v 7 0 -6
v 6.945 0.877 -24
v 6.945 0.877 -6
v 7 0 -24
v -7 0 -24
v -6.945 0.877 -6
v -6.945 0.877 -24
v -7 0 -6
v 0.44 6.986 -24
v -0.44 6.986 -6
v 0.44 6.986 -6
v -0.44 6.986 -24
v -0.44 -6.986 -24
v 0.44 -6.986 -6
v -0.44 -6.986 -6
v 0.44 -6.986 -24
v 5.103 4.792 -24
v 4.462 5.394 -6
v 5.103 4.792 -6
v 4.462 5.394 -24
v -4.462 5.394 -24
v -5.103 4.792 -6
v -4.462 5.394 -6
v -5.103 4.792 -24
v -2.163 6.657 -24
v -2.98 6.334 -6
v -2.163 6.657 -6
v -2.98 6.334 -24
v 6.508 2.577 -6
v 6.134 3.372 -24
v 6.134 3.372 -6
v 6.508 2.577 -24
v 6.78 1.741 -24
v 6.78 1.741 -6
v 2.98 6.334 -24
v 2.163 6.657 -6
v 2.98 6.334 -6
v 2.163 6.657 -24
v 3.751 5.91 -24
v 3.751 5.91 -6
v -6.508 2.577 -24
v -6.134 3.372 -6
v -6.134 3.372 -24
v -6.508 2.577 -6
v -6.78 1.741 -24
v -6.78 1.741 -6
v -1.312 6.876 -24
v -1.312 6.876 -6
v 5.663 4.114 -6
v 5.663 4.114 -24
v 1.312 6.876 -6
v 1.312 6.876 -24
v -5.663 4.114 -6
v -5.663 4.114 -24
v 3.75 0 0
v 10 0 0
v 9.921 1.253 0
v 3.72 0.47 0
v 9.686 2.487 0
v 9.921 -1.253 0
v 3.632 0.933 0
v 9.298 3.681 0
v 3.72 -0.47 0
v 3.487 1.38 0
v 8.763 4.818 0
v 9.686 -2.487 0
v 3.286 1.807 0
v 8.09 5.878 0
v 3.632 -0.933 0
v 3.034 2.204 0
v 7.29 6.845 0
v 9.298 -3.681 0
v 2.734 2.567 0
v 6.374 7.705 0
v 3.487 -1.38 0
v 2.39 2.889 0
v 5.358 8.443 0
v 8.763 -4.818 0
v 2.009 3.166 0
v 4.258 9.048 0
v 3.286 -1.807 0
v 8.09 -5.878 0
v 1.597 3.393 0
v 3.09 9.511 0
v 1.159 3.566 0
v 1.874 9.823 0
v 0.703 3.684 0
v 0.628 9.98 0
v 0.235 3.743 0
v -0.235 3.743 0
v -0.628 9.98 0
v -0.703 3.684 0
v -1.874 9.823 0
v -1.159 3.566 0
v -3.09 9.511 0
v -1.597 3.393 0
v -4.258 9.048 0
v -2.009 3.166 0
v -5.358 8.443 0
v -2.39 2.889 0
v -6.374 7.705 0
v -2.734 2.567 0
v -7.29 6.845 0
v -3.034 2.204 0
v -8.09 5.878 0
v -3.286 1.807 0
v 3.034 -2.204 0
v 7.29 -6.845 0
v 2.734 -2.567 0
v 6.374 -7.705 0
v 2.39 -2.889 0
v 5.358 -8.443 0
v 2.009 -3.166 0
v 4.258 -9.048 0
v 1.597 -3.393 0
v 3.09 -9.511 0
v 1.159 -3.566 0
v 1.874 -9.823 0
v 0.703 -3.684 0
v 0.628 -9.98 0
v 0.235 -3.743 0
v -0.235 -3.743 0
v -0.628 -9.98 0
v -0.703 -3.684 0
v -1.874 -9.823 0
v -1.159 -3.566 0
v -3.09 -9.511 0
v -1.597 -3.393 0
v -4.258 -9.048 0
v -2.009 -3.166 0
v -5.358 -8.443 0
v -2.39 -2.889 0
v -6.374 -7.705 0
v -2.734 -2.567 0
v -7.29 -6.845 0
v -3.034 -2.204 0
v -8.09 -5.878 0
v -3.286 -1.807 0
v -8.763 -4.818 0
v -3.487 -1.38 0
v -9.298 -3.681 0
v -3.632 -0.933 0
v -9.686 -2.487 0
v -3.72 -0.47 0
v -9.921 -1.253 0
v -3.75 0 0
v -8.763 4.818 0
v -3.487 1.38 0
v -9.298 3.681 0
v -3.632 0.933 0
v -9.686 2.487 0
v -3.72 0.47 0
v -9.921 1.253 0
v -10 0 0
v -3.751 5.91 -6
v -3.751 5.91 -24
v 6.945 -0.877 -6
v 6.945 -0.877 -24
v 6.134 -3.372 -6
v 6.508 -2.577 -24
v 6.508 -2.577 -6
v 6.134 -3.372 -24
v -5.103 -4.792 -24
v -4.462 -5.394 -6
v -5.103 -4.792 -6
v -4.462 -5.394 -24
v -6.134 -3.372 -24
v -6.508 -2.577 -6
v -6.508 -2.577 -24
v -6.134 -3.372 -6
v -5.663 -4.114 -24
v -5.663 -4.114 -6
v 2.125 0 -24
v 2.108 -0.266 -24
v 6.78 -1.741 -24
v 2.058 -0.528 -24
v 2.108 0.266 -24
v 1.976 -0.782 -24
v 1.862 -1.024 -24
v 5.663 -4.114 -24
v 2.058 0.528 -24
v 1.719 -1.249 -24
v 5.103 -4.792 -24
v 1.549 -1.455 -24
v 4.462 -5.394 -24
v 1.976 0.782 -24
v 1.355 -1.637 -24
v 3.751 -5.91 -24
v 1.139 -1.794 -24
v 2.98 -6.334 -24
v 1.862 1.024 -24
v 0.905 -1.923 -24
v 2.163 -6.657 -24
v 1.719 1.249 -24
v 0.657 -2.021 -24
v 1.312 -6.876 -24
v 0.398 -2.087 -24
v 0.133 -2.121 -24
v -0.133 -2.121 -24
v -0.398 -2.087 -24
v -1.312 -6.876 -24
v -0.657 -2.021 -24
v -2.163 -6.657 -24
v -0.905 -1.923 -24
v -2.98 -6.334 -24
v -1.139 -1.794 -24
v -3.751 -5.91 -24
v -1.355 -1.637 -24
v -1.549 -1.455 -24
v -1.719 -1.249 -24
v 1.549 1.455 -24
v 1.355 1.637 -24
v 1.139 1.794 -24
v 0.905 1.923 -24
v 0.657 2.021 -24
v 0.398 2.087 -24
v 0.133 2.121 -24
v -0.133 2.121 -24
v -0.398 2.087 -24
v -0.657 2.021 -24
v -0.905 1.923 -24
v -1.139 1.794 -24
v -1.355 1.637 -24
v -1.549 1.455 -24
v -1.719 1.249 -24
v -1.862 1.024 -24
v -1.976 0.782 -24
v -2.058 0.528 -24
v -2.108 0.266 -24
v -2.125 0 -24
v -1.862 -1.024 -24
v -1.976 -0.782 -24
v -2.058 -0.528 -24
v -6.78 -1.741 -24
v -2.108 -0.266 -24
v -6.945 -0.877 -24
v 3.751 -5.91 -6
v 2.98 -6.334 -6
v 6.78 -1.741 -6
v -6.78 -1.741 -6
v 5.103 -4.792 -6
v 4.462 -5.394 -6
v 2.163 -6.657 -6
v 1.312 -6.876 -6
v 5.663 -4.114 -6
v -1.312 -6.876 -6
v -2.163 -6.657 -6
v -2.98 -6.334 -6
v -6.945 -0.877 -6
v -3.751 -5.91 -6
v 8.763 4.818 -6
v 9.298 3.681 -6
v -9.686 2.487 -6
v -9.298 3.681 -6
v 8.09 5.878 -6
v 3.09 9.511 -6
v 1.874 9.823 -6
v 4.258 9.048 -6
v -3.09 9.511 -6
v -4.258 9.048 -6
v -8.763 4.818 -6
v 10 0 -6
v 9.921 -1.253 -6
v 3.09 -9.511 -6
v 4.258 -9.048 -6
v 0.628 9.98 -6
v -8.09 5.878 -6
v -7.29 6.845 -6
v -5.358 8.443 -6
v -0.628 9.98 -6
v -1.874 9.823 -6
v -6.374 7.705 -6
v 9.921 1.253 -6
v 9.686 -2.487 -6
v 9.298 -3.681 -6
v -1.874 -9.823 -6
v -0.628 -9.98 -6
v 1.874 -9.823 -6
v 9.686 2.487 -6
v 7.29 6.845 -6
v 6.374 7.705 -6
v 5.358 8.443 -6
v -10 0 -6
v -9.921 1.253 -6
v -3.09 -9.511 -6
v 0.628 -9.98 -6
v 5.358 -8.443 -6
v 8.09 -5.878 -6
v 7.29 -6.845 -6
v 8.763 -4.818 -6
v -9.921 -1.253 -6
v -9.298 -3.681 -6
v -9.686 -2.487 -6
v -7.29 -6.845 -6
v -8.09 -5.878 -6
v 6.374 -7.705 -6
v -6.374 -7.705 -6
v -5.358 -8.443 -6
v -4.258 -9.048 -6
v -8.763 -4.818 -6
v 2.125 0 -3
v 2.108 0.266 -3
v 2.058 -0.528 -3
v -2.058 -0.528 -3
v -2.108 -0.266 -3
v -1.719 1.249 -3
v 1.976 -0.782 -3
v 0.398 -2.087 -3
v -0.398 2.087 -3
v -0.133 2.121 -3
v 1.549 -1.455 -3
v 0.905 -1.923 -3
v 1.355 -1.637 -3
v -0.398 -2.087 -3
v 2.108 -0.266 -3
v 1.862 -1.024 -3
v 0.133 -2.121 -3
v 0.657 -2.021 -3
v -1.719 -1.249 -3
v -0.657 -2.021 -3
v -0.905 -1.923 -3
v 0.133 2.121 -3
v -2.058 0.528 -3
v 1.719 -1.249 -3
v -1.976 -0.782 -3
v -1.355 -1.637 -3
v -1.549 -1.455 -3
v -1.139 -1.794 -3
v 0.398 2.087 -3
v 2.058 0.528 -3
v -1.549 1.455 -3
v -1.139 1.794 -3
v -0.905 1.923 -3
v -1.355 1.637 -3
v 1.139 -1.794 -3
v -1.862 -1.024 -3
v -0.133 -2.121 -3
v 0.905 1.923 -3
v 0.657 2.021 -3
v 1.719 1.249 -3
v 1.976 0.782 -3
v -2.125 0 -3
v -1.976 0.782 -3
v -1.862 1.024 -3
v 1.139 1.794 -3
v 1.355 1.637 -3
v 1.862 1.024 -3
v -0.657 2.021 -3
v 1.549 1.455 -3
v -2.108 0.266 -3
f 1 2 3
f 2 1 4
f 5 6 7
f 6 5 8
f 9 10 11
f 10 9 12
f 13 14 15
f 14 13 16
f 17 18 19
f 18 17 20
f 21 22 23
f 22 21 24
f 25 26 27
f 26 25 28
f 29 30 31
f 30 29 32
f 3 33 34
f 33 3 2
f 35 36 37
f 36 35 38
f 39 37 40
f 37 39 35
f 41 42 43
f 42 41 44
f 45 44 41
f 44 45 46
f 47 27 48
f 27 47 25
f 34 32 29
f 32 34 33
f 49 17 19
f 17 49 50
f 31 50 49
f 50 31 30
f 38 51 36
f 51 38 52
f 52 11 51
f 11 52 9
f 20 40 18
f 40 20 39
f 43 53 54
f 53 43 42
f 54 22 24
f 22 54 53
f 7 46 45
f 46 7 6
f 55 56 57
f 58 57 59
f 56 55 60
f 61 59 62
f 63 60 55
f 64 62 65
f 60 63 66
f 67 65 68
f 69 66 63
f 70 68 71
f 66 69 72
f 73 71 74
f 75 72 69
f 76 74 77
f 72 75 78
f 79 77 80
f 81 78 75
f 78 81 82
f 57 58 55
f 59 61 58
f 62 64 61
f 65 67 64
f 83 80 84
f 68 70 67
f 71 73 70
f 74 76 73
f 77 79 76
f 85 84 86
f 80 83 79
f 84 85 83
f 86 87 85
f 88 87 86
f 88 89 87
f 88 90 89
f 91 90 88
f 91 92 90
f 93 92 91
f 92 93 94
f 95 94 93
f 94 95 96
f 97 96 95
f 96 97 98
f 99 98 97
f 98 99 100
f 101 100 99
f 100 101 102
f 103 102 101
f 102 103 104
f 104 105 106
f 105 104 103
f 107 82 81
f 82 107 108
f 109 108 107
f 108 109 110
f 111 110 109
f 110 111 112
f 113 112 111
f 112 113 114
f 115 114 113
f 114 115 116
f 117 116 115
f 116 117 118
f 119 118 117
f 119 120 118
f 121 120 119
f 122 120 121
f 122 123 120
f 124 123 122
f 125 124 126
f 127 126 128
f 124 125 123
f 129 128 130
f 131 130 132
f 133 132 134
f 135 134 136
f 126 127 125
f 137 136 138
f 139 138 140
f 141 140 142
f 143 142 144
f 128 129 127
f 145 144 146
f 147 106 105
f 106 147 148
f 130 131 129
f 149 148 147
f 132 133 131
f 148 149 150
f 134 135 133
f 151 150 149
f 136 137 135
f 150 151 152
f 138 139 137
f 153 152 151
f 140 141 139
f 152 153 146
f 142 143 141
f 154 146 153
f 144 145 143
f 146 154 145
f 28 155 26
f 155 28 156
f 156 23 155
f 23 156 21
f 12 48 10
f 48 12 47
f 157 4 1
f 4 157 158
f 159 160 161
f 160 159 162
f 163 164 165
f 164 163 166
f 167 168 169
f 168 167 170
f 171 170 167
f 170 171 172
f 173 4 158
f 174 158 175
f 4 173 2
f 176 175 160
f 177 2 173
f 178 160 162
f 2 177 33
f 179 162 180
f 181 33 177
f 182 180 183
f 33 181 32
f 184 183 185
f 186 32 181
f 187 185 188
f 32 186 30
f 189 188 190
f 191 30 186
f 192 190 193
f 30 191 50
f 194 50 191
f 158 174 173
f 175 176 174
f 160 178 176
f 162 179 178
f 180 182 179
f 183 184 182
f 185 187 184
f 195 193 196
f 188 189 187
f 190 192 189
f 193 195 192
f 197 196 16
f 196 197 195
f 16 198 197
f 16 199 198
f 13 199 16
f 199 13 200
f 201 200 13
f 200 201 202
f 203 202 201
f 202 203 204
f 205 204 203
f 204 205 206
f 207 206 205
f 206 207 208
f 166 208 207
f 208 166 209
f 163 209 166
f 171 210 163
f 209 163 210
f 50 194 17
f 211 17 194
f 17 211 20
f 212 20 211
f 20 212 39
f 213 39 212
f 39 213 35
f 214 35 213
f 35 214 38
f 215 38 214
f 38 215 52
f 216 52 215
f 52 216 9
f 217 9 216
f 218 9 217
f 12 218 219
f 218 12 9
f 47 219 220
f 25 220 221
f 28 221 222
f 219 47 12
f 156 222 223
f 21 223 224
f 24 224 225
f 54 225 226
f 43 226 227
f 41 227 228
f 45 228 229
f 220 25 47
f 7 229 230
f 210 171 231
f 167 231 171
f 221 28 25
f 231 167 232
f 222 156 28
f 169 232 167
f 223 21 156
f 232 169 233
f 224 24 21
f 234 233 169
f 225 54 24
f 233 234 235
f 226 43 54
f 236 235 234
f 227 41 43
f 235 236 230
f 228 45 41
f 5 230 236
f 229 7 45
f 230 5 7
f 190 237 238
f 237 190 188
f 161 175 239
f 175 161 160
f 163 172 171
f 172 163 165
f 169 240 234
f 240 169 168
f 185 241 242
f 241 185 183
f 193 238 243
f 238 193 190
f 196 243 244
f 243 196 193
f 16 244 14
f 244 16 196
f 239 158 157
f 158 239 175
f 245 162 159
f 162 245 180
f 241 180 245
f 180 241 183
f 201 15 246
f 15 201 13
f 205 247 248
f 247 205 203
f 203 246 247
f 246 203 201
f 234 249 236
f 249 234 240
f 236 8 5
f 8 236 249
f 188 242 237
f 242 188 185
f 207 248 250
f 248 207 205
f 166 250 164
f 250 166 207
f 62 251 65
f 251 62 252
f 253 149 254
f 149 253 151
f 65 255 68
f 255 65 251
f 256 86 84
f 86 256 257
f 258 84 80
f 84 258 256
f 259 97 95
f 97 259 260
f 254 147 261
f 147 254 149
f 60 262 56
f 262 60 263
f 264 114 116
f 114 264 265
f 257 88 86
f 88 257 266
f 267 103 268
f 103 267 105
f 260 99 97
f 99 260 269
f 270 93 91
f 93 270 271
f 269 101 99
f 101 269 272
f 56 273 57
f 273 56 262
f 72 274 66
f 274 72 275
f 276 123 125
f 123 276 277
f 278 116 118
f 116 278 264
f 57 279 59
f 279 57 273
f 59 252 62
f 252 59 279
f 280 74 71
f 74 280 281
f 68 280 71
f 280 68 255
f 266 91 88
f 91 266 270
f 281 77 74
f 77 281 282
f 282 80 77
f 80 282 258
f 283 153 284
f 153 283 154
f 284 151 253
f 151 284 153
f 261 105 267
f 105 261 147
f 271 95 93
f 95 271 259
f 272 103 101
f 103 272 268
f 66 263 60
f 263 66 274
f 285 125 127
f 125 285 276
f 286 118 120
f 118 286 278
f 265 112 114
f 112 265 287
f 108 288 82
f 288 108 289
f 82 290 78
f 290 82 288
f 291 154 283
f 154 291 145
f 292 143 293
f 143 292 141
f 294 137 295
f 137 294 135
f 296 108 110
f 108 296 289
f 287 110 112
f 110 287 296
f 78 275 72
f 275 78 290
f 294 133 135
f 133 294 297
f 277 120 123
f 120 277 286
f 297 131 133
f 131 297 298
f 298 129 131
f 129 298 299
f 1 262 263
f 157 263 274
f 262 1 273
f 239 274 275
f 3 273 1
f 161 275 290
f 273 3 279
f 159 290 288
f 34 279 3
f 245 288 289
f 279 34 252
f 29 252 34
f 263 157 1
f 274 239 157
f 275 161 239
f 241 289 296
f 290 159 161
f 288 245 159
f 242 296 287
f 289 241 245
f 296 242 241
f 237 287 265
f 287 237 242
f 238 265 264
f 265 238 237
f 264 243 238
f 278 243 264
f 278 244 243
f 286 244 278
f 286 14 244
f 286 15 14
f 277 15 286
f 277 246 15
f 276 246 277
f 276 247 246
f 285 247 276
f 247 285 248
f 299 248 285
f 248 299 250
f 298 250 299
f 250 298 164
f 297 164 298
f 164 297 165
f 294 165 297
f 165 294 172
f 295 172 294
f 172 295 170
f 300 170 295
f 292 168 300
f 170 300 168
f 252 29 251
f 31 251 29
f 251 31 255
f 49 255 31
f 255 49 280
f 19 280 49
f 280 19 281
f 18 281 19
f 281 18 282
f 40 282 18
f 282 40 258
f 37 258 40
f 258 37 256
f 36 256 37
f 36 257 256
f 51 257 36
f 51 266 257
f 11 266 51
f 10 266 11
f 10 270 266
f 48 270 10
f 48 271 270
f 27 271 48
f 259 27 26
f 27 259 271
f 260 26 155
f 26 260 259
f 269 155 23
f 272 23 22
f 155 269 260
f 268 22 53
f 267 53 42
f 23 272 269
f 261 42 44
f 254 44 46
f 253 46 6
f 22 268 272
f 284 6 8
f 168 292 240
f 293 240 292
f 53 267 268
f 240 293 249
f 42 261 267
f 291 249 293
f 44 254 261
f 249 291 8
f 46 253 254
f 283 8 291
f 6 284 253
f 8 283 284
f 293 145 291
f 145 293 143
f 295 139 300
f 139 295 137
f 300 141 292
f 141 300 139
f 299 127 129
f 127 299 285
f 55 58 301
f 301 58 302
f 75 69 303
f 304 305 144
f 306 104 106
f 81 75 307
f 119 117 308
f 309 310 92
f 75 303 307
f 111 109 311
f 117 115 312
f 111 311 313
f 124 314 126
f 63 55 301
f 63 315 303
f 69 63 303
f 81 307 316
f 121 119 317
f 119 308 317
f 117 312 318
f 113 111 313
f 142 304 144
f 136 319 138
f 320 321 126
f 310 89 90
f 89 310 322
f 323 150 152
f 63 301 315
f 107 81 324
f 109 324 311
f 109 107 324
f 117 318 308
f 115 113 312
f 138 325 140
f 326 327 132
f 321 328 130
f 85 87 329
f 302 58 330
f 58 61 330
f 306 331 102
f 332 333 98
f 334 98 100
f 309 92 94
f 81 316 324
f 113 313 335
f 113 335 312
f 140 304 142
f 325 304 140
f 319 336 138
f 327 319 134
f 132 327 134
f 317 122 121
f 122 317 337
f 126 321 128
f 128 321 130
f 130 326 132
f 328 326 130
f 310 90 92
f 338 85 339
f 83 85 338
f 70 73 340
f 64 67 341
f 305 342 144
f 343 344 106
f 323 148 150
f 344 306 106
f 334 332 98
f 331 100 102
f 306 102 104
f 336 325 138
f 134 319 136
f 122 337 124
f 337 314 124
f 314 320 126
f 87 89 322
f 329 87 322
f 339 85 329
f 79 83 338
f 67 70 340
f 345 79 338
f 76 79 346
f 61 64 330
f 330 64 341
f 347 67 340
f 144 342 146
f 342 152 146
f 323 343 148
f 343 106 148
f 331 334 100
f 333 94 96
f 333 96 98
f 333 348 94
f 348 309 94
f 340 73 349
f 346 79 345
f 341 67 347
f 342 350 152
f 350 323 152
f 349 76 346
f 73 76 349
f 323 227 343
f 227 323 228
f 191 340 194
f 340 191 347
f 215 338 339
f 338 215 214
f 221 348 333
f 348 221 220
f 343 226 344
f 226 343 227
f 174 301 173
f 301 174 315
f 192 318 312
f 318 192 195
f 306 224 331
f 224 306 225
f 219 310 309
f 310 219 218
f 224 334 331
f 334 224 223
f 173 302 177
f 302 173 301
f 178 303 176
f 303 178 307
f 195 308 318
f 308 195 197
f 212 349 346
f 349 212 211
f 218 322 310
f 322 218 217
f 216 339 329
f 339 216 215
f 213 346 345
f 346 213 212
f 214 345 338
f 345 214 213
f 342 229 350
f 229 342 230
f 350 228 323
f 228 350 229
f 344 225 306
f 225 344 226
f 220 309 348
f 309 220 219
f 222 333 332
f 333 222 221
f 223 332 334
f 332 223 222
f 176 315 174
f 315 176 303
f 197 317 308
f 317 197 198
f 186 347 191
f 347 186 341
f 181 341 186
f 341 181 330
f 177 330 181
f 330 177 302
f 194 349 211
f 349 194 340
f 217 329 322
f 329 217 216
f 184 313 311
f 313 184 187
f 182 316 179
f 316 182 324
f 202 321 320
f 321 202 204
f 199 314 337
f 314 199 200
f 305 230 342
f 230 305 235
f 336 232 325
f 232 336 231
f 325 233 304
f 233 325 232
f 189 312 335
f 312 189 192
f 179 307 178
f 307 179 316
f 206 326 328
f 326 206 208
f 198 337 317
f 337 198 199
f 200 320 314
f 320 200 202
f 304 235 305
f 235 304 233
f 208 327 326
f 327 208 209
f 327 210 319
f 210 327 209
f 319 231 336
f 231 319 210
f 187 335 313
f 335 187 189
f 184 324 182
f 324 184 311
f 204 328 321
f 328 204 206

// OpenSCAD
$fn = 50;


difference() {
	union() {
		translate(v = [0, 0, -24.0000000000]) {
			cylinder(h = 24, r = 7.0000000000);
		}
		translate(v = [0, 0, -6.0000000000]) {
			cylinder(h = 6, r = 10.0000000000);
		}
	}
	union() {
		translate(v = [0, 0, 0]) {
			rotate(a = [0, 0, 0]) {
				difference() {
					union() {
						#translate(v = [0, 0, -24.0000000000]) {
							cylinder(h = 24, r = 2.0000000000);
						}
						#translate(v = [0, 0, -3]) {
							cylinder(h = 3, r = 7.0000000000, r1 = 2.1250000000, r2 = 3.7500000000);
						}
						#translate(v = [0, 0, -24.0000000000]) {
							cylinder(h = 24, r = 2.1250000000);
						}
						#translate(v = [0, 0, -24.0000000000]) {
							cylinder(h = 24, r = 2.0000000000);
						}
					}
					union();
				}
			}
		}
	}
}
